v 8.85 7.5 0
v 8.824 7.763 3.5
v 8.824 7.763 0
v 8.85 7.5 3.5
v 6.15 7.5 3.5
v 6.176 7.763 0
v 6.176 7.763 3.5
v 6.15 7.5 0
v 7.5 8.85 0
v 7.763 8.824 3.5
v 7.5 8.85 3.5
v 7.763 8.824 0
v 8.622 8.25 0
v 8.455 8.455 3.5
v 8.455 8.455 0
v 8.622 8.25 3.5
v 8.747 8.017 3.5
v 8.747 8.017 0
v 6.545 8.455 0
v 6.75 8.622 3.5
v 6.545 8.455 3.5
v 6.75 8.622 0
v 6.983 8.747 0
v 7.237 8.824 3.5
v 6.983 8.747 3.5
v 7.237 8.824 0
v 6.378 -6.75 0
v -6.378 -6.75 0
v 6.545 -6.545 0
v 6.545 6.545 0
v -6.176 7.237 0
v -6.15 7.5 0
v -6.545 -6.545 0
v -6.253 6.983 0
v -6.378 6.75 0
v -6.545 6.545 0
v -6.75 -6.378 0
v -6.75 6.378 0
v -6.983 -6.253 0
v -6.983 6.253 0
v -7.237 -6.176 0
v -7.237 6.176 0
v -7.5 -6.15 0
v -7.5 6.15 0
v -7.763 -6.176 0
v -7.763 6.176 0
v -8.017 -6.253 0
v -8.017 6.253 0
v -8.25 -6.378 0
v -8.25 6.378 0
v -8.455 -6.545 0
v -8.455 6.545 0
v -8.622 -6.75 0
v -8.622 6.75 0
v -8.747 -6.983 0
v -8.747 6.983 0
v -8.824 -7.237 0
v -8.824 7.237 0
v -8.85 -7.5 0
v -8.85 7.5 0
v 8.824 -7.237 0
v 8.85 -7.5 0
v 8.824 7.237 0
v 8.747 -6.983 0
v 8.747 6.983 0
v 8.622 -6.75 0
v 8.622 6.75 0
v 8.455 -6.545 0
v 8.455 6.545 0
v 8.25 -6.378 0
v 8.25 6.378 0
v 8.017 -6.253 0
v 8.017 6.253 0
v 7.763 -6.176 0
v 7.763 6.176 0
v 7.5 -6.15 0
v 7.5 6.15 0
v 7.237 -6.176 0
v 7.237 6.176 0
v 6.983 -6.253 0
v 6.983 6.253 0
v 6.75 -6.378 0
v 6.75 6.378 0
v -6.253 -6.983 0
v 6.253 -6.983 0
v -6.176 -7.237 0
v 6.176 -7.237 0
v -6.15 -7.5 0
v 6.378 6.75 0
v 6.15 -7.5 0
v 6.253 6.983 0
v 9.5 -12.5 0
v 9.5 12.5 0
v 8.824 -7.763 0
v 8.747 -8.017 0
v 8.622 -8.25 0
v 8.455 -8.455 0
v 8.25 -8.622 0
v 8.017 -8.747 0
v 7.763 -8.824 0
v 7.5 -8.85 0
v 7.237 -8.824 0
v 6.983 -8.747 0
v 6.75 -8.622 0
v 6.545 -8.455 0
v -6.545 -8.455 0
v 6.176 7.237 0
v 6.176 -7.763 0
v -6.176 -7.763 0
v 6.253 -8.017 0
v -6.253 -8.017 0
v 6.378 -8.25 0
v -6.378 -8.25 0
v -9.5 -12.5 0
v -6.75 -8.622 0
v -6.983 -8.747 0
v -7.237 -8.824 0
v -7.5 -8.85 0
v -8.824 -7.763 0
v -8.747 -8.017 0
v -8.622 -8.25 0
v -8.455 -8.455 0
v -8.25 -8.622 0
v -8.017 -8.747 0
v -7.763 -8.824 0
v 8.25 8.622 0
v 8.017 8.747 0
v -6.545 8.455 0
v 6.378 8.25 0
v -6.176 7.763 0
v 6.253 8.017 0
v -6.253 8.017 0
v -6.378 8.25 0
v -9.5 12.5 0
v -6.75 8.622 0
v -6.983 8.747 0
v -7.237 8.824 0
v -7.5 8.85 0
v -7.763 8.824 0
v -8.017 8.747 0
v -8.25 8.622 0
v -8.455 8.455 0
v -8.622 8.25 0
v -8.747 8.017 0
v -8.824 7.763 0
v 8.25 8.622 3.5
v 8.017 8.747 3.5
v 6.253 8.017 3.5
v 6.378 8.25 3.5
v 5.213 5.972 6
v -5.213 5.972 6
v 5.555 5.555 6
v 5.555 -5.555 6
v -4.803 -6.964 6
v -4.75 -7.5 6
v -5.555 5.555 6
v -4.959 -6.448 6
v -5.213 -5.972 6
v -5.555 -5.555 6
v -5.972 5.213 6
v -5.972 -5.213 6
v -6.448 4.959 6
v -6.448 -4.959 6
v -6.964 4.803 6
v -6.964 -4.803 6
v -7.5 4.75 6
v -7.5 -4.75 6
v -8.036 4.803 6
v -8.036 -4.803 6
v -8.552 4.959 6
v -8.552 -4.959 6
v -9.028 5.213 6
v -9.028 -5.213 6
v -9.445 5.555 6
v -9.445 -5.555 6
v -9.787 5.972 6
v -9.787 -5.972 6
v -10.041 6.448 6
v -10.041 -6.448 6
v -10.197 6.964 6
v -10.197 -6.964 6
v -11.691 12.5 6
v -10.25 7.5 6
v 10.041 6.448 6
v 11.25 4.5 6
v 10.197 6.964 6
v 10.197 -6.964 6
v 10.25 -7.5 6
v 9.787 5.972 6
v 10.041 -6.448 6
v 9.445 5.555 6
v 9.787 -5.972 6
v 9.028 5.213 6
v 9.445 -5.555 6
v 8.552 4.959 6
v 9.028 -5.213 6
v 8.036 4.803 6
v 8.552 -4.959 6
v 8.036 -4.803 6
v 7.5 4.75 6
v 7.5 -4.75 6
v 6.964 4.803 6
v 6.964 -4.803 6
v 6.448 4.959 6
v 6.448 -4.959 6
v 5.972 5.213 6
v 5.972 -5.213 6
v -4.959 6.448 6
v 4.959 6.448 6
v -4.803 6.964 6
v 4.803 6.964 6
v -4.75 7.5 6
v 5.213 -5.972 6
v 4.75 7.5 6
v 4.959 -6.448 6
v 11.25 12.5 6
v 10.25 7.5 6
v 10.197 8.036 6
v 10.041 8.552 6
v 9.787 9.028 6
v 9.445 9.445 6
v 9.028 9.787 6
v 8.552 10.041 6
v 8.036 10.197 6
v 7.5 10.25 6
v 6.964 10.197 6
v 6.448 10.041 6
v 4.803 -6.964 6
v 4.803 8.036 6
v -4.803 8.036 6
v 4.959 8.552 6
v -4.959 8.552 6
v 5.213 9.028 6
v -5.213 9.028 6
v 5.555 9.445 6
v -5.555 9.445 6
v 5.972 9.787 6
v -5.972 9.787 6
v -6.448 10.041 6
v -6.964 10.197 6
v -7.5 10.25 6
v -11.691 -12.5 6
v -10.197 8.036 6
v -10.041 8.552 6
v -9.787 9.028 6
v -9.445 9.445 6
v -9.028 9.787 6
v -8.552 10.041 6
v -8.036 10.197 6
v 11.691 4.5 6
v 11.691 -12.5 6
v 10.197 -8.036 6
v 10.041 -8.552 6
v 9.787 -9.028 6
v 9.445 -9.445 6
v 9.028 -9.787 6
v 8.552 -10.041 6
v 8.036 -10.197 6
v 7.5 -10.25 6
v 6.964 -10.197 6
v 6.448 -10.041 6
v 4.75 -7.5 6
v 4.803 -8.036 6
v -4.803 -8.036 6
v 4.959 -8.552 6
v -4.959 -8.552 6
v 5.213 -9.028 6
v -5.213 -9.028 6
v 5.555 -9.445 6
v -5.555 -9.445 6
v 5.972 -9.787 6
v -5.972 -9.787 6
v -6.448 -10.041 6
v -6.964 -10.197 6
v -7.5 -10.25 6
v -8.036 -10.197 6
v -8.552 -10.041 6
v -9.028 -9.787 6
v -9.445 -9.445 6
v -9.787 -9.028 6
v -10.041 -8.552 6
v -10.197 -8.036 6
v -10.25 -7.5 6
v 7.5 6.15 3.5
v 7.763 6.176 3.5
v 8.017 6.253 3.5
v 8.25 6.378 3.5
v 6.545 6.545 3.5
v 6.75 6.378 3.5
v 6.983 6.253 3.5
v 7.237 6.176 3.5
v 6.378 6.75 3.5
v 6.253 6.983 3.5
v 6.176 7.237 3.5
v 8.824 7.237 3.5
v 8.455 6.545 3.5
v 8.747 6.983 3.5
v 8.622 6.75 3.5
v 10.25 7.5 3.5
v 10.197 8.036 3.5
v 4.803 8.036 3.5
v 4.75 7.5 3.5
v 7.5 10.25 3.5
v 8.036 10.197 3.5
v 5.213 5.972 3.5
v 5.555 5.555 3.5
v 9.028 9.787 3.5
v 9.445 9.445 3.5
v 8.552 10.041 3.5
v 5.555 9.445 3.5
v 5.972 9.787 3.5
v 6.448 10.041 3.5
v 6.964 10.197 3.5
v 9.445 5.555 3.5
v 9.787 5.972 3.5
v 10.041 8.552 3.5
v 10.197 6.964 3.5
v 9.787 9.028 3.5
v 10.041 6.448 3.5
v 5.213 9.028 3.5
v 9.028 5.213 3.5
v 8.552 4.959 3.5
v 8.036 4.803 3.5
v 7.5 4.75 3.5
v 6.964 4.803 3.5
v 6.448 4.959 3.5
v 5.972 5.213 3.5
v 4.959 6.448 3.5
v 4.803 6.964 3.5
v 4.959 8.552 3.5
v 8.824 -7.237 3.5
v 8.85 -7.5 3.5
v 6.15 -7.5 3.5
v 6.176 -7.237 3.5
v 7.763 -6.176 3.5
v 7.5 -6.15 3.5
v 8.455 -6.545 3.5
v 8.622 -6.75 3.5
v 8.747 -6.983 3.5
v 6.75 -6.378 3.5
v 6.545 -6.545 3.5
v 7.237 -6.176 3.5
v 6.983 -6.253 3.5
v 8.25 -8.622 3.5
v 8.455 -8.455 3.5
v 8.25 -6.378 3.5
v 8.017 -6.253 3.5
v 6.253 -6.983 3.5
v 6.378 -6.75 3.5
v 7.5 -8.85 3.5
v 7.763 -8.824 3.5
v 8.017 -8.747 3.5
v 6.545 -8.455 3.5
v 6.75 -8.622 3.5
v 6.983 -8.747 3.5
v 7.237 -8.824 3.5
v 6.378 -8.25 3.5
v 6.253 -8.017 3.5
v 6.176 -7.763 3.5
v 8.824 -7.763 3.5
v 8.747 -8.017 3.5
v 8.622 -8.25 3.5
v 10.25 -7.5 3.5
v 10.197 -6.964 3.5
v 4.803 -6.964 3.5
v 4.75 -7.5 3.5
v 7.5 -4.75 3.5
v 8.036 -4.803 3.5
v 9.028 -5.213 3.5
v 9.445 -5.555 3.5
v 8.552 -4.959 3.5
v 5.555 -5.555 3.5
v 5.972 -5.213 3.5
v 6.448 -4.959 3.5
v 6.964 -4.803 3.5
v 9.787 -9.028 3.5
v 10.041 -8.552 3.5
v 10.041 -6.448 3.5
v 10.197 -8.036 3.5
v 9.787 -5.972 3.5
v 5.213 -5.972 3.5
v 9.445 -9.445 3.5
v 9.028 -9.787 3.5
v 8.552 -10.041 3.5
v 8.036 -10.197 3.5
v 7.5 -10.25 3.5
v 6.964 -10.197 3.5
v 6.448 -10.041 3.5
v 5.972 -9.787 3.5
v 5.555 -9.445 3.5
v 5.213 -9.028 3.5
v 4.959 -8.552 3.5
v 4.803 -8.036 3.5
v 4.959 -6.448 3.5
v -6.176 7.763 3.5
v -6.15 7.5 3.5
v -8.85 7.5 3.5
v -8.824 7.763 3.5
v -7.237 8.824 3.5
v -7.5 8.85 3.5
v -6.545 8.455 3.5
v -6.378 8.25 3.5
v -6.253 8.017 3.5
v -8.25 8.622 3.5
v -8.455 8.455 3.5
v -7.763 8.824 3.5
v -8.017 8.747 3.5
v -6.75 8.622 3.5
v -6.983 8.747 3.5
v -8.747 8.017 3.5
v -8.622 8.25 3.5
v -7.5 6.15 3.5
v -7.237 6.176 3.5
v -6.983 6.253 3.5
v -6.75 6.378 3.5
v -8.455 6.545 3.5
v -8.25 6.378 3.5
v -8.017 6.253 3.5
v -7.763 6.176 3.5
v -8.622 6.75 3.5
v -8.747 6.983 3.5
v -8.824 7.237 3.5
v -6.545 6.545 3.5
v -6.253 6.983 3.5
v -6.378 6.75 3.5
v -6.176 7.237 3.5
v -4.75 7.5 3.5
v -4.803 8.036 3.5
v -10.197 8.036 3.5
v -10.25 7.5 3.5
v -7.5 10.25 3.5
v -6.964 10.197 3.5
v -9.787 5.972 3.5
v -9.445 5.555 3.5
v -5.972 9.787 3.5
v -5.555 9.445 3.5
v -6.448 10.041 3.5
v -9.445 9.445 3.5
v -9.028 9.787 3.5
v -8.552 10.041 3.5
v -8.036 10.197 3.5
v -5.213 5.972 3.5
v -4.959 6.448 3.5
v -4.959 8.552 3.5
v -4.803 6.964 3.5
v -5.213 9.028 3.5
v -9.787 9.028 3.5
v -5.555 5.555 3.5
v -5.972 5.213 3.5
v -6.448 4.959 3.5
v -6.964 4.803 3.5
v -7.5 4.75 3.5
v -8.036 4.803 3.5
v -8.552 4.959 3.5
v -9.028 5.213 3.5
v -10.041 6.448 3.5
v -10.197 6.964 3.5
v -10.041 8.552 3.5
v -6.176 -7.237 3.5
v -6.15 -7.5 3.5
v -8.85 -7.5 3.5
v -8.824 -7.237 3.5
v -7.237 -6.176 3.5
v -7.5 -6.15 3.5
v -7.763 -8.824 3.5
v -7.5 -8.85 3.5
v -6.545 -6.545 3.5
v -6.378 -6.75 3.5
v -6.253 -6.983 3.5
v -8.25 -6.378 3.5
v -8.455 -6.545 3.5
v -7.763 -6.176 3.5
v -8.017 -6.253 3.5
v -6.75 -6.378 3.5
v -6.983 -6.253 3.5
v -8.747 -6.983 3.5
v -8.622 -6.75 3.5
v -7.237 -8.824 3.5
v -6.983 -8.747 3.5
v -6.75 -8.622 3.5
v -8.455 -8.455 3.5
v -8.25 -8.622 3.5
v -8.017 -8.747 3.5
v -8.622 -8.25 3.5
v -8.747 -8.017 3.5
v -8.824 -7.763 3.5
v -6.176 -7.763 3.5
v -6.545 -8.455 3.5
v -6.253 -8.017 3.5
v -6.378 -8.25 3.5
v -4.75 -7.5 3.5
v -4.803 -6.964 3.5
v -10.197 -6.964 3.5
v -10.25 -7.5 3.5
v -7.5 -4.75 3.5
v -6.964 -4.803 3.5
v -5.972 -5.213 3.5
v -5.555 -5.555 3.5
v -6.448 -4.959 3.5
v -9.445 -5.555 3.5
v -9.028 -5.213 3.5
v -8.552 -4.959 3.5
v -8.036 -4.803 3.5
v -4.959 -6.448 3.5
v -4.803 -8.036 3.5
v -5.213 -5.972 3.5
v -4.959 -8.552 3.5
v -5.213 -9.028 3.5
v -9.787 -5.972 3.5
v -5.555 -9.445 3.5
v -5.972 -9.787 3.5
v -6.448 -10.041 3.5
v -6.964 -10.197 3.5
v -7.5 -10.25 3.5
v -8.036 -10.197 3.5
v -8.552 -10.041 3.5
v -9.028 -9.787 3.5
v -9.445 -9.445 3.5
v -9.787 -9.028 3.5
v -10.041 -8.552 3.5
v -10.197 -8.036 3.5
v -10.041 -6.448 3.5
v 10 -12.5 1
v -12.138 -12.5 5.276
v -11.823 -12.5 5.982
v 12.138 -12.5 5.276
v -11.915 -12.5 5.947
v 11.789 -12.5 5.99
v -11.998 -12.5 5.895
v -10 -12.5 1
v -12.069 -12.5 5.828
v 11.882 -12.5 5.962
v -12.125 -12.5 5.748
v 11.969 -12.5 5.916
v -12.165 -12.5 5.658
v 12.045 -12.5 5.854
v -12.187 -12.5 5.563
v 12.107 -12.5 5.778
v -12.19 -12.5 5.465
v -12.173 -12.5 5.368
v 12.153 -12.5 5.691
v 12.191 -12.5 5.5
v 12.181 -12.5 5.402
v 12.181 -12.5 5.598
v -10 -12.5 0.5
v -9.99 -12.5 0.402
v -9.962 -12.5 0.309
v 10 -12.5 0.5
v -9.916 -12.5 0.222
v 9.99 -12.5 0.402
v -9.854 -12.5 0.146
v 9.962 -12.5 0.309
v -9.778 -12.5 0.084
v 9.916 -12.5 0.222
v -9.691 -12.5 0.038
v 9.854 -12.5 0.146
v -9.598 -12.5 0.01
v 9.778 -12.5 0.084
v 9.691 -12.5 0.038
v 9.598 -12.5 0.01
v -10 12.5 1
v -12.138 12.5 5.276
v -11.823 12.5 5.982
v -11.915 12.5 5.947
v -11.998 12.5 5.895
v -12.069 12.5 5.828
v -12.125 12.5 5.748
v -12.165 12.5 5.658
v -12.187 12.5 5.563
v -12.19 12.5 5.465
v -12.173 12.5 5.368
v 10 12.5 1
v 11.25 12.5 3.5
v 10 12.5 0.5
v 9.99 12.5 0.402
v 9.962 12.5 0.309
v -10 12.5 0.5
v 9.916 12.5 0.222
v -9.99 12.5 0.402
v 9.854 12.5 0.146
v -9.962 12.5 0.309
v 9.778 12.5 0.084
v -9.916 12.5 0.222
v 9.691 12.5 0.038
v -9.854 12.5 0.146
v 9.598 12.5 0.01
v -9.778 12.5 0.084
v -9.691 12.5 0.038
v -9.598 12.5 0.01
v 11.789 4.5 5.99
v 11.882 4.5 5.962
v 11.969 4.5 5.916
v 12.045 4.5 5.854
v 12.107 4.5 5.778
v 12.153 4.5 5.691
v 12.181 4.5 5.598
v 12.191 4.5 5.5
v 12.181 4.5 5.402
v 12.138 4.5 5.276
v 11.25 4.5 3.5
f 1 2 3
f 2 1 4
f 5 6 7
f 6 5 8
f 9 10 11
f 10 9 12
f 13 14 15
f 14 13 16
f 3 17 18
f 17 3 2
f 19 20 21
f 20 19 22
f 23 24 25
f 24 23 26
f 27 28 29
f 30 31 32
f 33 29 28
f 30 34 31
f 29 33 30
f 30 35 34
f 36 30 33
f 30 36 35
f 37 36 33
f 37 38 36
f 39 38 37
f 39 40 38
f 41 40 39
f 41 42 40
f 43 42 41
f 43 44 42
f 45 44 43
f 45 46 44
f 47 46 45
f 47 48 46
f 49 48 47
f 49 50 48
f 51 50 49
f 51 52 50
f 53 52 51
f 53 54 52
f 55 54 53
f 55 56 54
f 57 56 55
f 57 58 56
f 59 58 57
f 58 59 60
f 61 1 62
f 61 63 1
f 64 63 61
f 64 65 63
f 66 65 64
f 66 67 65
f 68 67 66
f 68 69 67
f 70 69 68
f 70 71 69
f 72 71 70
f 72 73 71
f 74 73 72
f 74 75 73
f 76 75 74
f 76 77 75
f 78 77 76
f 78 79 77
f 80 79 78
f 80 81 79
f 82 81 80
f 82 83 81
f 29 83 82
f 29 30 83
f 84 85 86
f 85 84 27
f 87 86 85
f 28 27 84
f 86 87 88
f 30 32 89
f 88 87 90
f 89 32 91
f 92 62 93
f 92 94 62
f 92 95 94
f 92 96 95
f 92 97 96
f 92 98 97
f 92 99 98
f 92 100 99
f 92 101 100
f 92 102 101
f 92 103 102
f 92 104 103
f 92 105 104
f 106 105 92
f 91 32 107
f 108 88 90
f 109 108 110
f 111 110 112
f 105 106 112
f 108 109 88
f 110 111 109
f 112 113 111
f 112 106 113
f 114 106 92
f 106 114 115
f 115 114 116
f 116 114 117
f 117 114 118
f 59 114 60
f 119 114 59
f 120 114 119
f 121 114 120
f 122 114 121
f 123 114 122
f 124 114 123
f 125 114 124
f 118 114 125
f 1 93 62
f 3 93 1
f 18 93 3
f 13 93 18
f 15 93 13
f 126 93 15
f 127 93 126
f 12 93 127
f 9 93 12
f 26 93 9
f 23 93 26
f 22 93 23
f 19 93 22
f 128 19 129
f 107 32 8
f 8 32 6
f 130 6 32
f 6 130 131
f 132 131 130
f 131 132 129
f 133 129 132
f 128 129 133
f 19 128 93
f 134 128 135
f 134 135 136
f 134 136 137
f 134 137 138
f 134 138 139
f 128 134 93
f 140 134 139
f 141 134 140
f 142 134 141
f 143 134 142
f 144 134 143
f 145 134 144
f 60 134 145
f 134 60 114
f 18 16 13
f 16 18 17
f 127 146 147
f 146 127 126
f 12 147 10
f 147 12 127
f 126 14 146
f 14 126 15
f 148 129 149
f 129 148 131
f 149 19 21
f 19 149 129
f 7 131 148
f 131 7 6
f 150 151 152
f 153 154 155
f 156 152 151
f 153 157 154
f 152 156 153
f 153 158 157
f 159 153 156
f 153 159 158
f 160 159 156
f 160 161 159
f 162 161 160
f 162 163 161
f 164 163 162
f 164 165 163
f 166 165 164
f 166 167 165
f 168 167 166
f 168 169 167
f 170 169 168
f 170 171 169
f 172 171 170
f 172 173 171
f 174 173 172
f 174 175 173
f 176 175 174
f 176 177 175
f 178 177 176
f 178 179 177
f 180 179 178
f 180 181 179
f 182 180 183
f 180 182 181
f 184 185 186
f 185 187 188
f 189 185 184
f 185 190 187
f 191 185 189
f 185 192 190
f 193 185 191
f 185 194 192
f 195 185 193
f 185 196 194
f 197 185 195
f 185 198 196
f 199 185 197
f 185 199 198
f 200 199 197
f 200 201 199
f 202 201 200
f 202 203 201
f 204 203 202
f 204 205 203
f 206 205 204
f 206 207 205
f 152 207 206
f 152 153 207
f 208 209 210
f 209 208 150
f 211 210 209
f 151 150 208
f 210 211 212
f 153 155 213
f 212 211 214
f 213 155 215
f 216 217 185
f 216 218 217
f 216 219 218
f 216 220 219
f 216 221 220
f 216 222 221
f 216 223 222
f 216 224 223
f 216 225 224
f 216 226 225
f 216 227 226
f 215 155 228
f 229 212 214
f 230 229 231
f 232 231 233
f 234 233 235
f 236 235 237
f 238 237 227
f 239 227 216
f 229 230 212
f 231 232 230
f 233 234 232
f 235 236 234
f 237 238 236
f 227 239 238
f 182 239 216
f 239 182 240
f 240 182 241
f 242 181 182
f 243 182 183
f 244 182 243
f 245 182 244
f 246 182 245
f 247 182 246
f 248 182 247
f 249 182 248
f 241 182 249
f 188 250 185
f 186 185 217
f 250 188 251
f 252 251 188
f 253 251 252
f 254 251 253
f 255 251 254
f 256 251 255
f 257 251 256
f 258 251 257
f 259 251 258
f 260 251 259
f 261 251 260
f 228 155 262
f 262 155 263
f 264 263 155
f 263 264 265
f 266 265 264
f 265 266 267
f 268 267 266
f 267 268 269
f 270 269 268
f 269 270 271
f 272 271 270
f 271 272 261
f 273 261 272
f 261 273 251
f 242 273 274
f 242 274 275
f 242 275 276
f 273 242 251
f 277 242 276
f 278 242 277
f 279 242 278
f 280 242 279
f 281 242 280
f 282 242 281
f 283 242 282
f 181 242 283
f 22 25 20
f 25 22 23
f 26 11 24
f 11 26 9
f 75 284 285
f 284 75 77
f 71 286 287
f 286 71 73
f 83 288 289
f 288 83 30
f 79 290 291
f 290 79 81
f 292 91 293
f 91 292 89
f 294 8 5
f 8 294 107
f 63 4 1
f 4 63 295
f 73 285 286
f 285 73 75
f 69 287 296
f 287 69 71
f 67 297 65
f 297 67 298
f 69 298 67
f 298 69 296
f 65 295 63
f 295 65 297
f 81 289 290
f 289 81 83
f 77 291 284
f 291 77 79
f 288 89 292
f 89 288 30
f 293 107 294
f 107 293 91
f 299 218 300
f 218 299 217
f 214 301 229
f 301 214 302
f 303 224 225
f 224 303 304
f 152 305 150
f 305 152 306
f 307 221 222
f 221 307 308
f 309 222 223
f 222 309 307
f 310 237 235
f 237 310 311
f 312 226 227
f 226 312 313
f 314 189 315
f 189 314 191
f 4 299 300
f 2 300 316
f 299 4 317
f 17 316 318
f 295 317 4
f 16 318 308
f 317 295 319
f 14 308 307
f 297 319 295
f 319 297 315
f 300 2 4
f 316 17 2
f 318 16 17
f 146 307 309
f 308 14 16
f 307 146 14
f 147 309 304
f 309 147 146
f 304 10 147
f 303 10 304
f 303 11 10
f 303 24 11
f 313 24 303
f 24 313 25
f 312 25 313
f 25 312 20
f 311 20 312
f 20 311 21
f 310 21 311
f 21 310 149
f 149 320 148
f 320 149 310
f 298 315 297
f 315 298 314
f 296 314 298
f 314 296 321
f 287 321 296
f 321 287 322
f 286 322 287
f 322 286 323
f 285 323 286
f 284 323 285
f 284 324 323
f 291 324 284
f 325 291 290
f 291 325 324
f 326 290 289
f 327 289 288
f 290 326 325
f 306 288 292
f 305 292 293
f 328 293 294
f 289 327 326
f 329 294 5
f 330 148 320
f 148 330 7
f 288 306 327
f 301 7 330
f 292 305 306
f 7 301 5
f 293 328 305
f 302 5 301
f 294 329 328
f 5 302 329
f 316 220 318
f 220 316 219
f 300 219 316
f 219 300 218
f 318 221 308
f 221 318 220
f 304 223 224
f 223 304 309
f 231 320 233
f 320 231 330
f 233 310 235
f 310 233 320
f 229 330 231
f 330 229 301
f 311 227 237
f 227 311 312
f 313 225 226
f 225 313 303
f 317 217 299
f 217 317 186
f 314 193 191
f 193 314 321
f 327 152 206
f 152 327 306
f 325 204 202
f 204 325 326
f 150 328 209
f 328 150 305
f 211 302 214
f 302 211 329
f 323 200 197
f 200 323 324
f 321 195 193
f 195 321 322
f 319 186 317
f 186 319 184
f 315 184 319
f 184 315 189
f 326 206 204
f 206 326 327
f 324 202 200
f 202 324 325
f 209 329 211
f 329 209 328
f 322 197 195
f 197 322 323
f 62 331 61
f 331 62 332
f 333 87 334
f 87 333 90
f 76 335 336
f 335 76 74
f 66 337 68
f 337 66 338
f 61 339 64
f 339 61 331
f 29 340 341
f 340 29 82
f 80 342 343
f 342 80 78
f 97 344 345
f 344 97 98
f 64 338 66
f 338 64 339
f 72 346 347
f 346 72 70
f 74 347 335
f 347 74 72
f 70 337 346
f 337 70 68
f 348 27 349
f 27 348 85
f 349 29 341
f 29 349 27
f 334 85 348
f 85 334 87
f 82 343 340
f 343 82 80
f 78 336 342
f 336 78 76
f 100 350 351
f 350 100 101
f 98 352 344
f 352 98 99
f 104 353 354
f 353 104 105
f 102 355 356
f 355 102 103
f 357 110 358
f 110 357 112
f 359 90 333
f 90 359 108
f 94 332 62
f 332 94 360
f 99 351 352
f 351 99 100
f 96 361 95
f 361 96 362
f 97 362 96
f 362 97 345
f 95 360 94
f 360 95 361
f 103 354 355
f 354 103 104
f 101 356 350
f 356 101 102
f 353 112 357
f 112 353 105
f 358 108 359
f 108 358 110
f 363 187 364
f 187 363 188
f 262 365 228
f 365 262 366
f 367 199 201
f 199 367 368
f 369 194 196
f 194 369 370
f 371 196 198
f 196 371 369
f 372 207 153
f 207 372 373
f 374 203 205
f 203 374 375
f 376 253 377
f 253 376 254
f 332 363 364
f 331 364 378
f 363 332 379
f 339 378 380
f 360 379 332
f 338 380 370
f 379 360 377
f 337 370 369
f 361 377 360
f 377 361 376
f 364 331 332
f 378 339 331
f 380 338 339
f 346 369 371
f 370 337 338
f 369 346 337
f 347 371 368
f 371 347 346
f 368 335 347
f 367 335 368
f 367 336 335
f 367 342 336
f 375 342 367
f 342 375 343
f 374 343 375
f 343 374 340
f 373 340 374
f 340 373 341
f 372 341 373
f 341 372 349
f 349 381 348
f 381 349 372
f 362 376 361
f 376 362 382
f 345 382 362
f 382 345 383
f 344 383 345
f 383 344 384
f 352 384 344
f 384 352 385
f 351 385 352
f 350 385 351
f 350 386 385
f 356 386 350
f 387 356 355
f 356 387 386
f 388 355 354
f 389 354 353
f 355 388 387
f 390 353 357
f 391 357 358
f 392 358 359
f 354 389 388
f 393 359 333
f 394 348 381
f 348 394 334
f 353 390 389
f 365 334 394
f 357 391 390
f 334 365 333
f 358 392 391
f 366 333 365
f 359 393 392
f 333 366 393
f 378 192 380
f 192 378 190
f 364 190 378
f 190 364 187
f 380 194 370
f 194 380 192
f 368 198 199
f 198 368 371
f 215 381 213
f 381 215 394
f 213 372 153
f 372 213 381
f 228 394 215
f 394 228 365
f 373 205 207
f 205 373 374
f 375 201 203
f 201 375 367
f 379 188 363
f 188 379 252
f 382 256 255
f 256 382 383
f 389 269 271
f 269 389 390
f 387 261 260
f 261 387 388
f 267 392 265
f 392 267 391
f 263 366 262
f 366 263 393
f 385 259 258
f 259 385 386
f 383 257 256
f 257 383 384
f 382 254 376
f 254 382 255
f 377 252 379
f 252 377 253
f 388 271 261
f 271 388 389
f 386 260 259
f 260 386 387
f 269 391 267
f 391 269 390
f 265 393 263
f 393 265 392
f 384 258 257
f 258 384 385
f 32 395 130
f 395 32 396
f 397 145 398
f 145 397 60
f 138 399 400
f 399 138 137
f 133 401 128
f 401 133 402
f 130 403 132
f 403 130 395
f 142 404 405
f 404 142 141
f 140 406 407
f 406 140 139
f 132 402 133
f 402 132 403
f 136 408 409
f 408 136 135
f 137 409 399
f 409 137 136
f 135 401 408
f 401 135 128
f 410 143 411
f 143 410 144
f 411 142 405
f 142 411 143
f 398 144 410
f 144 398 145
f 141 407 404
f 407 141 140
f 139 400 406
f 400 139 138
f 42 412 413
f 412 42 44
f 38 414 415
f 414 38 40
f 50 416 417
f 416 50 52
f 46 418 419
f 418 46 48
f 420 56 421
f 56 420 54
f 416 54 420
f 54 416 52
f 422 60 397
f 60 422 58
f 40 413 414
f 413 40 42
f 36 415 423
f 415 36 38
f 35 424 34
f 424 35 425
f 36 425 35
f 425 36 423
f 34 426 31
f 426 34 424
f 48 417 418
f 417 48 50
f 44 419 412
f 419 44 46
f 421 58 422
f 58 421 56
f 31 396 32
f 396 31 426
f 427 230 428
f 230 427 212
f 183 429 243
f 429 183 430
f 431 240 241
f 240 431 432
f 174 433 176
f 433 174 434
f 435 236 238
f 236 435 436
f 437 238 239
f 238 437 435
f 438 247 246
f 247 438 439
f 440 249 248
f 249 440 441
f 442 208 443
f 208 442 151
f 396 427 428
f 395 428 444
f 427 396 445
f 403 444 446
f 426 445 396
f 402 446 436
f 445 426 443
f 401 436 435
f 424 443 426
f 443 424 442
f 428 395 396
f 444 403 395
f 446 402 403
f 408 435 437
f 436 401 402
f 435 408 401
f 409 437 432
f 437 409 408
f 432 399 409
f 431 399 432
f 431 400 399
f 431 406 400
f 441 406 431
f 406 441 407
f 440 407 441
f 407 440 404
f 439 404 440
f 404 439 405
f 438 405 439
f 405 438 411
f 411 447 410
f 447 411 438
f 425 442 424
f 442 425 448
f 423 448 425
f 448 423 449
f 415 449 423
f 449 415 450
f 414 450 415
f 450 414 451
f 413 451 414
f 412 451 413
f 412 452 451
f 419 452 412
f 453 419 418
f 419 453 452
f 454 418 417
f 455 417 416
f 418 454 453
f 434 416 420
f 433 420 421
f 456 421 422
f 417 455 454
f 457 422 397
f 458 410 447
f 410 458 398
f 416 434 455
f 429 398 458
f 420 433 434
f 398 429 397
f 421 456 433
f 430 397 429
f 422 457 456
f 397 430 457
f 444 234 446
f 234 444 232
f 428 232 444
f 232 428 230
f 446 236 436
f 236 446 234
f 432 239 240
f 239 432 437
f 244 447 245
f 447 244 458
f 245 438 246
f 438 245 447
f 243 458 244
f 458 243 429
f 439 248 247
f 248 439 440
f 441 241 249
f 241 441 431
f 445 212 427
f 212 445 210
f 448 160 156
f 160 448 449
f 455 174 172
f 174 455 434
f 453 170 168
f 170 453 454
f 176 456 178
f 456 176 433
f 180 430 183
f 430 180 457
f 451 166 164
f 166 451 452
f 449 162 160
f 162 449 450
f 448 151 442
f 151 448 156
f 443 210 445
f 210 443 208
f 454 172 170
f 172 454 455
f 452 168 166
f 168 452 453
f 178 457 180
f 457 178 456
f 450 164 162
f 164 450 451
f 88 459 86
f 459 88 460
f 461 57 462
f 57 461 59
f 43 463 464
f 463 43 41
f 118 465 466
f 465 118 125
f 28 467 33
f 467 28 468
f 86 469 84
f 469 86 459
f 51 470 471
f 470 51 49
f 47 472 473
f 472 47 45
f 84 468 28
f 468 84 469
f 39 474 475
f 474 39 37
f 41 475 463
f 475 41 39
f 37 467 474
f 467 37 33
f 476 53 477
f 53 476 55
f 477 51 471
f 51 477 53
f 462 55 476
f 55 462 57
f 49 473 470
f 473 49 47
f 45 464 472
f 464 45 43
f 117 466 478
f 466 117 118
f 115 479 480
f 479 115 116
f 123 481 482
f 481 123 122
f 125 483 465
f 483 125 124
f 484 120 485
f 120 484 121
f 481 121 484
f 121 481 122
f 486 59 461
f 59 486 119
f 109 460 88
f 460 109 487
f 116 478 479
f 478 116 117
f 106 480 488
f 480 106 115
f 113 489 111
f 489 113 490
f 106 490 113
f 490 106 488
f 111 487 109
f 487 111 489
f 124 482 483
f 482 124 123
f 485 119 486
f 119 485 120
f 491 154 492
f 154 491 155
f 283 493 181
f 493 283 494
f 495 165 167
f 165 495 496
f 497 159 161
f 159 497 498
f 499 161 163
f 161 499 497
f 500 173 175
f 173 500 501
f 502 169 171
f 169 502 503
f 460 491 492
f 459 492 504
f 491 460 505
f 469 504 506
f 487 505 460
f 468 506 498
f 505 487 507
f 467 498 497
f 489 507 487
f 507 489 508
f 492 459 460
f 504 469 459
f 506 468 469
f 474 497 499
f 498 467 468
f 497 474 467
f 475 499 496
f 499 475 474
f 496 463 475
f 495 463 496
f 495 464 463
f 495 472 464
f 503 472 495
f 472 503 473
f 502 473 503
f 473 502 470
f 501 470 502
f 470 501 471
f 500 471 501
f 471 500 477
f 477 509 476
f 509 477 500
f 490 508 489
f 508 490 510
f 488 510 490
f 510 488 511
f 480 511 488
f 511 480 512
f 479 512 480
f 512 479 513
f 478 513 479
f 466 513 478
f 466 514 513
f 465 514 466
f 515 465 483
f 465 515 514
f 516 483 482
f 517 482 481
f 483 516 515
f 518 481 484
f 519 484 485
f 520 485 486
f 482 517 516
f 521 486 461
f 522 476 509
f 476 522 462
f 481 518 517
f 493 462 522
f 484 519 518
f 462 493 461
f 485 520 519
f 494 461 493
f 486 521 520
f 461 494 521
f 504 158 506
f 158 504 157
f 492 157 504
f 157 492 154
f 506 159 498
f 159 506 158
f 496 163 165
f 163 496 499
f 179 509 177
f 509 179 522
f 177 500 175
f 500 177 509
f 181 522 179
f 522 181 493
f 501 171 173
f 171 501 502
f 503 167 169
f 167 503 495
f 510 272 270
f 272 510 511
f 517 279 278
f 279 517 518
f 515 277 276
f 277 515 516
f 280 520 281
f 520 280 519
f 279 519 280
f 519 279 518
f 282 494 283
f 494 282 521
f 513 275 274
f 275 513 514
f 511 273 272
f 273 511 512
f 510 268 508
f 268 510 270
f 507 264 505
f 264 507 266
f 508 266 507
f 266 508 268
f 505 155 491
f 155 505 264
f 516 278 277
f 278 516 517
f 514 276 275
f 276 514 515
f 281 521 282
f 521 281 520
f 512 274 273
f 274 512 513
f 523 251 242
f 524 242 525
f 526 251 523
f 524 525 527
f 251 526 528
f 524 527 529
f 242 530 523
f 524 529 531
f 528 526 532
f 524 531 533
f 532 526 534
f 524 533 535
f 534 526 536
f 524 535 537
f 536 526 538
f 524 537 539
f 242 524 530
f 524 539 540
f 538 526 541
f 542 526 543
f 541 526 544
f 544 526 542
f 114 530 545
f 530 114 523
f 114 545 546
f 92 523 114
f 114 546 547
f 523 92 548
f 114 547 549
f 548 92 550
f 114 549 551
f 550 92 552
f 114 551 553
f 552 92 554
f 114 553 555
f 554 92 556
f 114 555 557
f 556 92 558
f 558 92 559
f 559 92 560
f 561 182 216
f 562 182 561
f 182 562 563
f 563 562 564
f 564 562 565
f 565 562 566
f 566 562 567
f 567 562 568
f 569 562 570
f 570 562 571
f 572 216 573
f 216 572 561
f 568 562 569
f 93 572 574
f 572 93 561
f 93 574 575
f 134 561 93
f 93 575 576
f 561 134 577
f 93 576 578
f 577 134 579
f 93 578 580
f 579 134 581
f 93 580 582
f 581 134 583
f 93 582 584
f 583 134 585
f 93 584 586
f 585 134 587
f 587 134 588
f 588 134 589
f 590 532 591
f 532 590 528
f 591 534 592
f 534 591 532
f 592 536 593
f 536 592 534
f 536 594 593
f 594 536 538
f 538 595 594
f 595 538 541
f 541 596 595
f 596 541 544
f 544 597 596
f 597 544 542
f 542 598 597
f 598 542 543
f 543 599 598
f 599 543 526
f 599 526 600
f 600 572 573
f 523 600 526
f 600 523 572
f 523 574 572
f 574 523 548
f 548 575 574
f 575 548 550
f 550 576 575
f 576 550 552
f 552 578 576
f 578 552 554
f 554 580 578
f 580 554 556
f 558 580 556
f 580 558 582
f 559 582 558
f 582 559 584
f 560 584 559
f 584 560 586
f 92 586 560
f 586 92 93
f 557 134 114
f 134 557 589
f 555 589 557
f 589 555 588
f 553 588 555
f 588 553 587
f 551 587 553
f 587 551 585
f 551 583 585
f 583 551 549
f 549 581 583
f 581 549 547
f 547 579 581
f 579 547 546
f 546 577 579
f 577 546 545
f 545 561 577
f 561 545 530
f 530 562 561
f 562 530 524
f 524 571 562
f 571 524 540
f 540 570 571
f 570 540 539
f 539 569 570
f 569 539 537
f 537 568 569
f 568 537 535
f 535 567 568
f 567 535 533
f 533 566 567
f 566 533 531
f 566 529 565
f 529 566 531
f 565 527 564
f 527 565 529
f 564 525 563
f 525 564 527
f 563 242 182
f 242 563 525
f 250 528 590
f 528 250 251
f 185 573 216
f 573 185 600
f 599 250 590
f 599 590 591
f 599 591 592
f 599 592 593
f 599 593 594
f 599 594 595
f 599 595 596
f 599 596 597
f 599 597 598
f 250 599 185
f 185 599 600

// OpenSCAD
$fn=32;
difference() {
    translate([-12.5, -12.5, 6])
    rotate([-90, 0, 0]) 
    linear_extrude(25)
    offset(r=0.5)
    offset(delta=-0.5) 
    polygon([[0,0],
             [25,0],
             [22.5, 5],
             [22.5, 6],
             [2.5, 6],
             [2.5,5]]);
    
    for(i=[7.5, -7.5]){
        for(j=[7.5, -7.5]){
            translate([i, j, 0]){
                cylinder(h=6, d=2.7);
                translate([0, 0, 3.5])
                    cylinder(h=2.5, d=5.5);
            }
        }
    }
    translate([11.25, 4.5, 0]) cube([1, 8, 6]);
}
